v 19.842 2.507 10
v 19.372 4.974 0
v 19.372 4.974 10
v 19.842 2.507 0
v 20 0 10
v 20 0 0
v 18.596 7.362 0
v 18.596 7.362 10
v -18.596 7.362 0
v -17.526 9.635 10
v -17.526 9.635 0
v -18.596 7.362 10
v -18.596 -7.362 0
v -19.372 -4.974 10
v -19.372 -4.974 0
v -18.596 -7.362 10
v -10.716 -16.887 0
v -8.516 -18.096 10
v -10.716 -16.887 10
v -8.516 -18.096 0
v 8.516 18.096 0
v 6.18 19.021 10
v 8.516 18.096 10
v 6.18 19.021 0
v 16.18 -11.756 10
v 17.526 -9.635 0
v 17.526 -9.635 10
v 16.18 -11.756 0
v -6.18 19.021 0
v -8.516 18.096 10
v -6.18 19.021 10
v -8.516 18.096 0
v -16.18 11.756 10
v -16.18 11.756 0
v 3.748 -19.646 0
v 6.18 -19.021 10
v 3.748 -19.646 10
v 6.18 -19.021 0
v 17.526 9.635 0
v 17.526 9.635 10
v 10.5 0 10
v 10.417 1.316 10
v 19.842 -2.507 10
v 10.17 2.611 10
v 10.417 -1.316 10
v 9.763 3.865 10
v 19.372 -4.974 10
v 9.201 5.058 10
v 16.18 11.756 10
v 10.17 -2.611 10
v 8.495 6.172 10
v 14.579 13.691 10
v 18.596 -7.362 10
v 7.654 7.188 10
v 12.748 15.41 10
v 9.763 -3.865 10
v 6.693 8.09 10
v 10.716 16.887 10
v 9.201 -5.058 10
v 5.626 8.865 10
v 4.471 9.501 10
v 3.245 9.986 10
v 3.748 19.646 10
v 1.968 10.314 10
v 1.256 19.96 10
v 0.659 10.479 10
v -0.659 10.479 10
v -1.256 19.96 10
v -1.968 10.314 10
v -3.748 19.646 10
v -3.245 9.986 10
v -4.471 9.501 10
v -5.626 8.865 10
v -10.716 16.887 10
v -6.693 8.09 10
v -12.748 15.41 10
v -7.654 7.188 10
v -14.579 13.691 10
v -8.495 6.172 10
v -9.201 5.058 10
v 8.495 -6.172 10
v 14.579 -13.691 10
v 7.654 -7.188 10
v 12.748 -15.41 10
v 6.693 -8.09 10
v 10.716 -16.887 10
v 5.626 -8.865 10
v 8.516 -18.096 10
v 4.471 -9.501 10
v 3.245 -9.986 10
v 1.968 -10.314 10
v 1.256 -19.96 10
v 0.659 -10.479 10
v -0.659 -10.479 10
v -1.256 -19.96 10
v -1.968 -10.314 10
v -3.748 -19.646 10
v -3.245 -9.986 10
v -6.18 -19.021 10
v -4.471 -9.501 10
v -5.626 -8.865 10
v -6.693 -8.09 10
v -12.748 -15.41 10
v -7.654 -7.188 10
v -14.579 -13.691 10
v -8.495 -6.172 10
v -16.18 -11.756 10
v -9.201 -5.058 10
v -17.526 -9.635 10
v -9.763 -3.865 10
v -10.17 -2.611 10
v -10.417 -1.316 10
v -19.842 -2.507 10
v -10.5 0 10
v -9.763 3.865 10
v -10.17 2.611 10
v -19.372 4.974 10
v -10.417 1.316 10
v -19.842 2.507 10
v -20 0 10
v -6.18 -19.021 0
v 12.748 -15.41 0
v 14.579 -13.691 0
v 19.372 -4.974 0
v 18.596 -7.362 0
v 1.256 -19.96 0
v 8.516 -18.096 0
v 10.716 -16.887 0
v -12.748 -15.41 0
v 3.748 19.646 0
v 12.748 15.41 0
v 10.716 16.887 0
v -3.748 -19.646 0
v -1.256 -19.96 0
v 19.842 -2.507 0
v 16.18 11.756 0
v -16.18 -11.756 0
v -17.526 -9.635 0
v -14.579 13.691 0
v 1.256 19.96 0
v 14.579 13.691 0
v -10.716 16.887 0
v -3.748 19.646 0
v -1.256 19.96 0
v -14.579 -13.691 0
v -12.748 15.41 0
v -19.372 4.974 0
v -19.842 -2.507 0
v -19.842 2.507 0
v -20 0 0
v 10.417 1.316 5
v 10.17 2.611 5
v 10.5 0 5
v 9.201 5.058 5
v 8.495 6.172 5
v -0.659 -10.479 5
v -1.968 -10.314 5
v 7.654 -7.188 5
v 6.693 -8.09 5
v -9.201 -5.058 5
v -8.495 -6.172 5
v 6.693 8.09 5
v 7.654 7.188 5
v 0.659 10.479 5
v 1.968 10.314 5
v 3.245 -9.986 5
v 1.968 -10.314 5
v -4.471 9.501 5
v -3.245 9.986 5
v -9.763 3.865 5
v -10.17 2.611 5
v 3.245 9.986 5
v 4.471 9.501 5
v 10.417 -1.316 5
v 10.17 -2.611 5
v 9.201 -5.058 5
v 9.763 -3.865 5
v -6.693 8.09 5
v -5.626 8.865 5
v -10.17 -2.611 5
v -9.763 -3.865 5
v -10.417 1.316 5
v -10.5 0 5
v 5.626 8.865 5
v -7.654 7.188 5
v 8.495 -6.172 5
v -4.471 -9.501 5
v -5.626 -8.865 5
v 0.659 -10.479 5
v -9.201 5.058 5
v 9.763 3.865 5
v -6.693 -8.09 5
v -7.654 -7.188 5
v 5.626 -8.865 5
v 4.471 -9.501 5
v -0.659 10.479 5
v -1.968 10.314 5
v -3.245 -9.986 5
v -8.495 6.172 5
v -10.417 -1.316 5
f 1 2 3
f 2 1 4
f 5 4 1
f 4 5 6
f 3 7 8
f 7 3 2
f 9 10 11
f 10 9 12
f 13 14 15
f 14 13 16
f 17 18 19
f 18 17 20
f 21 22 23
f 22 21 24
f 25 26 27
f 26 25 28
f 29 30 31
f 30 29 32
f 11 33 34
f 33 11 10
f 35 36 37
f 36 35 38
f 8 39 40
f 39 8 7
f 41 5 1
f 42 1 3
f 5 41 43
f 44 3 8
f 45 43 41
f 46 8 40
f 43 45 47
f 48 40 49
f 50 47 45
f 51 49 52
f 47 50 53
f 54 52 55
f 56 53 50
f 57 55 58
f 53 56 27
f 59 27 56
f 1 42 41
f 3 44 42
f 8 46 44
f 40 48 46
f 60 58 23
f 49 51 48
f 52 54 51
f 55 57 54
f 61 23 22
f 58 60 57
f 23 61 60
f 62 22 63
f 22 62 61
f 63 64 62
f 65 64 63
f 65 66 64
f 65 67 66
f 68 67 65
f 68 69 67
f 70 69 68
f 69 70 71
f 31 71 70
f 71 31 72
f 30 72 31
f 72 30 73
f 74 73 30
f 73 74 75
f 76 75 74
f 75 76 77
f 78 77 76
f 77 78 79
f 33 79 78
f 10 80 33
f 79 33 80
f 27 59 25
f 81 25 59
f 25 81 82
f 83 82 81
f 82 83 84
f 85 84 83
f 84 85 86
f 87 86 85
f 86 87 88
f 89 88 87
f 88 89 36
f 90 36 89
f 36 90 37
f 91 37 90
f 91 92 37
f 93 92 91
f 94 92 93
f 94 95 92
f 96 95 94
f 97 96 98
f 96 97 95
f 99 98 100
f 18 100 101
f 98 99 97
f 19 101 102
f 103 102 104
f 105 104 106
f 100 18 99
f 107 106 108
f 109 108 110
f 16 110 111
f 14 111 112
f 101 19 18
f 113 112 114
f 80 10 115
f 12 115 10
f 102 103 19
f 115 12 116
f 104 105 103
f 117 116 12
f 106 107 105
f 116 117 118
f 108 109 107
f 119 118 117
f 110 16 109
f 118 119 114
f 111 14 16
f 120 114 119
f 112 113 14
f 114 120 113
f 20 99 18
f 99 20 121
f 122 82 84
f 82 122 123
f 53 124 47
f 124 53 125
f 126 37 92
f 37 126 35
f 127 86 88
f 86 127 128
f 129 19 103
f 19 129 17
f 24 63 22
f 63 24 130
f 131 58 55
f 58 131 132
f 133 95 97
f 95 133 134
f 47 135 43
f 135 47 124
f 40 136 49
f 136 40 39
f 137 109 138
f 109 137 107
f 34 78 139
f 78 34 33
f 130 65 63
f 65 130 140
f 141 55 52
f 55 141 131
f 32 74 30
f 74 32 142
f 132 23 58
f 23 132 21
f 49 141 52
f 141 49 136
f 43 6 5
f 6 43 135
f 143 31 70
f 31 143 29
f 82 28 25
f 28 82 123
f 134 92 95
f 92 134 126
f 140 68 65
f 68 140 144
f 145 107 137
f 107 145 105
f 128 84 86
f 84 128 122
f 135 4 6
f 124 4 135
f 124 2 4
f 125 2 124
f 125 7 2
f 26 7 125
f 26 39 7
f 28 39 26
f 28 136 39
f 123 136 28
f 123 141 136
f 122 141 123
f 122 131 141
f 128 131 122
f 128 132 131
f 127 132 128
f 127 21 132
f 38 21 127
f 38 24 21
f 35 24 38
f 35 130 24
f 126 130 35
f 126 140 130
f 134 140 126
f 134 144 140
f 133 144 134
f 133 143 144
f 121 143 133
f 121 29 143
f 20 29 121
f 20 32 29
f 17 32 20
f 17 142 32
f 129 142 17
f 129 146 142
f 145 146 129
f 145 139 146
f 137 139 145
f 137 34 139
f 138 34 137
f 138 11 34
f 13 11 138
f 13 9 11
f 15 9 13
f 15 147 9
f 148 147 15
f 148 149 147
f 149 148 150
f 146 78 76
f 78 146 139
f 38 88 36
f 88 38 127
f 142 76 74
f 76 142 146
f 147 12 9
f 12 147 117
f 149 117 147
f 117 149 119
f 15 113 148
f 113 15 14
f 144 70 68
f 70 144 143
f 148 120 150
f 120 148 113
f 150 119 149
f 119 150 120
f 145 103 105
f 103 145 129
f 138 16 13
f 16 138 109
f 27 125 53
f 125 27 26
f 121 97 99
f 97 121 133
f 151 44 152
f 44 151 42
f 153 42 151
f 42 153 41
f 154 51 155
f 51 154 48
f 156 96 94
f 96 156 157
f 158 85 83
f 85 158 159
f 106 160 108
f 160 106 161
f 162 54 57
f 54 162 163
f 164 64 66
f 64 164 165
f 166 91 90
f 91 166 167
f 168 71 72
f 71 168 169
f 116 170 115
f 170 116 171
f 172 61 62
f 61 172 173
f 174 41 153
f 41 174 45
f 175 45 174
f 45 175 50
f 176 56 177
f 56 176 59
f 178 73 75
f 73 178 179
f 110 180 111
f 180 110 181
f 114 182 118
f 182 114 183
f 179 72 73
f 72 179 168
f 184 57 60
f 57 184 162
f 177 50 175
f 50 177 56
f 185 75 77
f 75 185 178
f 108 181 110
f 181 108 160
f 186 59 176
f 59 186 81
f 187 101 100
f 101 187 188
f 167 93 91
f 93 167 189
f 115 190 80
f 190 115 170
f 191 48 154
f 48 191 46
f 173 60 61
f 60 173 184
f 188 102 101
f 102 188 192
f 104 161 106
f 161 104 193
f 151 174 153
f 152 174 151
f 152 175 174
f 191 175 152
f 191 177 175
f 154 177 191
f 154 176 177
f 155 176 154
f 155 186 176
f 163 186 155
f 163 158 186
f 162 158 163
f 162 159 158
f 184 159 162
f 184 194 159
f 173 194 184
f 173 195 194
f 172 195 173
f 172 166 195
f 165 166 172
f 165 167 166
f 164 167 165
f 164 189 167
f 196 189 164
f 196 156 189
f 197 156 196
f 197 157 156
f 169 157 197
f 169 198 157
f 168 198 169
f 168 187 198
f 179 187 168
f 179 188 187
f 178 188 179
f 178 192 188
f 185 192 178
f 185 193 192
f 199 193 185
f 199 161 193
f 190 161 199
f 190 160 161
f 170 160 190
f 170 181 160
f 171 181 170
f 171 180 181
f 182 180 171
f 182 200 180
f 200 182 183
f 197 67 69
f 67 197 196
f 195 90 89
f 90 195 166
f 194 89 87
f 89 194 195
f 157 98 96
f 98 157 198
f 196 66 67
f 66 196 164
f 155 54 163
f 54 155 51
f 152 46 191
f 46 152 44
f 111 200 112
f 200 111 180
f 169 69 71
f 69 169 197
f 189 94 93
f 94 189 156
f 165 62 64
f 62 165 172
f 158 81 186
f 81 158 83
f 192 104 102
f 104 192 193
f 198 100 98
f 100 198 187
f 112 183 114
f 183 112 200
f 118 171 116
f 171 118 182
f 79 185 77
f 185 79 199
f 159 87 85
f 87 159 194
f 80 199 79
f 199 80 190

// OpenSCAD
$fn=50;

difference(){

	cylinder(h=10, r=20);

	translate([0, 0, 5]){

		cylinder(h=5, r=10.5);

	}

}
